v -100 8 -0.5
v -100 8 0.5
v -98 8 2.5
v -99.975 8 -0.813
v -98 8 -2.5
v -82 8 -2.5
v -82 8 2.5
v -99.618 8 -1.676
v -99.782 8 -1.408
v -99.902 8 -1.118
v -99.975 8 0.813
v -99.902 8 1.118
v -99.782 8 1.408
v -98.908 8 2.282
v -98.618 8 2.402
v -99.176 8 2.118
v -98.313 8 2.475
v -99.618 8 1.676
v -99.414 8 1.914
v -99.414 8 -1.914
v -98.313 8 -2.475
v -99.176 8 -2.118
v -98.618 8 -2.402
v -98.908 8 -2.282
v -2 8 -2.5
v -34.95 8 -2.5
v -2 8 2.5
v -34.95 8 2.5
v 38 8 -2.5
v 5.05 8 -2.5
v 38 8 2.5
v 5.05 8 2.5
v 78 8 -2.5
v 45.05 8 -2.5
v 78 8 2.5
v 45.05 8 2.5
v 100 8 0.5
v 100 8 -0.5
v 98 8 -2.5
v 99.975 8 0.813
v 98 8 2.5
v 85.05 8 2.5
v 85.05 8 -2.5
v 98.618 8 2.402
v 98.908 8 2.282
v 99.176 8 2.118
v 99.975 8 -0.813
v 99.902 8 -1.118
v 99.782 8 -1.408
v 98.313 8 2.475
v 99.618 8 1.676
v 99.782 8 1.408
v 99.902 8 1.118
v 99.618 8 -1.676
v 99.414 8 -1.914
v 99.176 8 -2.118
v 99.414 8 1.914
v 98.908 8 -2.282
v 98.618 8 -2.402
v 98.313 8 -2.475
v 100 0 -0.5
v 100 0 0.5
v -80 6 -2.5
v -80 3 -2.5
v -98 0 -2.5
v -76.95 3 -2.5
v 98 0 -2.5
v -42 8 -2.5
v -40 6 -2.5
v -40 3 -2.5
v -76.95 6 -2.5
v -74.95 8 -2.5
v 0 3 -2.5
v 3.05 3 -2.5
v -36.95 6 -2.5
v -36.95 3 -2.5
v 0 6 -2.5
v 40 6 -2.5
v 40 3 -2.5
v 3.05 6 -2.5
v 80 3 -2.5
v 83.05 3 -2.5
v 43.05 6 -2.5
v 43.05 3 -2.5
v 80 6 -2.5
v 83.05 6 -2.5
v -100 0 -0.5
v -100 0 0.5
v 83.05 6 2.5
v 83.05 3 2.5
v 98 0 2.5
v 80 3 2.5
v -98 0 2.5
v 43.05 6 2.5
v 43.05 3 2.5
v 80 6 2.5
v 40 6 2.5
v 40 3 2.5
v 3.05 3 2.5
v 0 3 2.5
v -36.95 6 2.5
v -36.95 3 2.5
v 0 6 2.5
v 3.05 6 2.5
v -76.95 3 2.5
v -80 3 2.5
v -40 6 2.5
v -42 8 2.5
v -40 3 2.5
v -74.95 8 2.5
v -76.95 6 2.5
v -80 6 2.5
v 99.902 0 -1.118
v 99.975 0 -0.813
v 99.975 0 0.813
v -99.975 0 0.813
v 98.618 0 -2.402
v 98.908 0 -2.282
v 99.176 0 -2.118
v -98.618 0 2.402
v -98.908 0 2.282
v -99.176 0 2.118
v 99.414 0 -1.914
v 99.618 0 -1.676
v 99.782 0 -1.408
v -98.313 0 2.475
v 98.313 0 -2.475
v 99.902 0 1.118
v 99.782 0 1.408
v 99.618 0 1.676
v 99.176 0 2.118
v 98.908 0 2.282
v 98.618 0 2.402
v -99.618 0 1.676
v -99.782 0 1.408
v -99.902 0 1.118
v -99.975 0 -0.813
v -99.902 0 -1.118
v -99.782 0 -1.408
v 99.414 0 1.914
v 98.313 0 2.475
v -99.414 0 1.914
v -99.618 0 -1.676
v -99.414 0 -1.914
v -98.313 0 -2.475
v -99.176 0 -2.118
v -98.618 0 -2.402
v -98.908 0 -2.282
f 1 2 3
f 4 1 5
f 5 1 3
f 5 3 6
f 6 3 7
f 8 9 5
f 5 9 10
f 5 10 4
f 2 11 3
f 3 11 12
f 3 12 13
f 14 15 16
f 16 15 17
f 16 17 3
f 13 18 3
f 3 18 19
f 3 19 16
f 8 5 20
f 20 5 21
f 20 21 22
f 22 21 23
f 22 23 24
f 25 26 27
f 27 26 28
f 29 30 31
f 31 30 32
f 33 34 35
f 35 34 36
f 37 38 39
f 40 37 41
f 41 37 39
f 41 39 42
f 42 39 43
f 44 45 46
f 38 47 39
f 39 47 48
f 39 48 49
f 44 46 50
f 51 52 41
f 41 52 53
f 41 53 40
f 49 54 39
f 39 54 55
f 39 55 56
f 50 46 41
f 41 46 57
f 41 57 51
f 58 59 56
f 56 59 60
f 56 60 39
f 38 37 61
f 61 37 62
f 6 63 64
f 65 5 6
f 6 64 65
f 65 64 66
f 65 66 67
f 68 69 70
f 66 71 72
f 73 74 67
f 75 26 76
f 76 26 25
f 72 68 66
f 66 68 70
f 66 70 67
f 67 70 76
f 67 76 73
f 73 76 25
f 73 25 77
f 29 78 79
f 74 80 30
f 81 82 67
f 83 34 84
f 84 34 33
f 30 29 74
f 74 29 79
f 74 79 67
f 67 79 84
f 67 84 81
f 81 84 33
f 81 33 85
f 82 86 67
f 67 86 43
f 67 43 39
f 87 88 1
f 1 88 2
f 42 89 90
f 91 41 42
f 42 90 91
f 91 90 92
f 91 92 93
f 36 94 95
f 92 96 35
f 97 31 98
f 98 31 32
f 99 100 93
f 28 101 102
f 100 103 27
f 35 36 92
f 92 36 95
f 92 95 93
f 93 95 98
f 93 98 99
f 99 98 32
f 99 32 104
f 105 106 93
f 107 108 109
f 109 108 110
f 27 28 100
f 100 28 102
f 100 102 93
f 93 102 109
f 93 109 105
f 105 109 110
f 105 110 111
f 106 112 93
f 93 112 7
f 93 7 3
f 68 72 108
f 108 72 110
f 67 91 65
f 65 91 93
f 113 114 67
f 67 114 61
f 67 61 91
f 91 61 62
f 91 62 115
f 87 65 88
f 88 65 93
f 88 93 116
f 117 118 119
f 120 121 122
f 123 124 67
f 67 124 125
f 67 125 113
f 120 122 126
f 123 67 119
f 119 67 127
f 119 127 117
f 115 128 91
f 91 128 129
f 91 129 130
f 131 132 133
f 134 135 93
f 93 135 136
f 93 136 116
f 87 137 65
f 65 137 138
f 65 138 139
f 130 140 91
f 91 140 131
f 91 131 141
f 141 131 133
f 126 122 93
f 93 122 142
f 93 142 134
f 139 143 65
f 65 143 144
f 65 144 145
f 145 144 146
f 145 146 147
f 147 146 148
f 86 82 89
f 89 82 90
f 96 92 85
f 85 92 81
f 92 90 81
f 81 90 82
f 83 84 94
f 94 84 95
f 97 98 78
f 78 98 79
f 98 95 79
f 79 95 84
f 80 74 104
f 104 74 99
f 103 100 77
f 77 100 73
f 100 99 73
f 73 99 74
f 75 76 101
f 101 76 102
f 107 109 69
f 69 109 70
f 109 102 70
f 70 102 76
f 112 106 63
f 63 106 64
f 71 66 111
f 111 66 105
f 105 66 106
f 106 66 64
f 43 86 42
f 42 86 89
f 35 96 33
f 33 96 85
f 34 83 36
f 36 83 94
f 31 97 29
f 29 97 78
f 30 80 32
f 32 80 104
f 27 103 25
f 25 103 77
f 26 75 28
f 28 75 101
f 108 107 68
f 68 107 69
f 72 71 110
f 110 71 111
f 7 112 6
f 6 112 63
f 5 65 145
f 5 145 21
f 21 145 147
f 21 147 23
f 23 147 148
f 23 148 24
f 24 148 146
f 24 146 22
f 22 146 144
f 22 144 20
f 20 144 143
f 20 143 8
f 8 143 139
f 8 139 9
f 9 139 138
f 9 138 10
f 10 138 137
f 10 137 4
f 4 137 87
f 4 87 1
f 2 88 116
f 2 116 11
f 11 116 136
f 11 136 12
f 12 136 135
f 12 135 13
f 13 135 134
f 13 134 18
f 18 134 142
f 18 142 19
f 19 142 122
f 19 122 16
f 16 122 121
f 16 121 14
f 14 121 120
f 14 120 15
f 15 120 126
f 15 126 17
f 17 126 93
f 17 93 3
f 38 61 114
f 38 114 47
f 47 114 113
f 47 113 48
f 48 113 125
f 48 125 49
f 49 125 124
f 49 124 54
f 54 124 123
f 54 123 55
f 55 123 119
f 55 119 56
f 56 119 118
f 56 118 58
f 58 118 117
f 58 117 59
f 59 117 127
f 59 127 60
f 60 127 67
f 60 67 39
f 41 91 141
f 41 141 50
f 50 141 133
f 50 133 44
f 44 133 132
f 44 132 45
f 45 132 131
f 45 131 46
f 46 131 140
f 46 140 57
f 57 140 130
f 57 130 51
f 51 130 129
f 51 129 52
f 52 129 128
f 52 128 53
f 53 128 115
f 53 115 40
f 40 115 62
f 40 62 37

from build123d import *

# Parameters (mm, degrees)
SKETCH1_W           = 200
SKETCH1_H           = 5
BOSS_EXTRUDE1_DEPTH = 8
SKETCH2_W           = 3.05
SKETCH2_H           = 5
CUT_EXTRUDE1_DEPTH  = 5
CHAMFER1_SIZE       = 2
FILLET1_R           = 2


with BuildPart() as part:
    # Sketch1 → Boss-Extrude1 (new body)
    with BuildSketch(Plane(origin=(0, 0, 0), x_dir=(1, 0, 0), z_dir=(0, 1, 0))):
        Rectangle(SKETCH1_W, SKETCH1_H)
    extrude(amount=BOSS_EXTRUDE1_DEPTH)

    # Sketch2 → Cut-Extrude1 (cut)
    with BuildSketch(Plane(origin=(0, 8, 0), x_dir=(1, 0, 0), z_dir=(0, 1, 0))):
        with Locations((-78.475, 0)):
            Rectangle(SKETCH2_W, SKETCH2_H)
        with Locations((-38.475, 0)):
            Rectangle(SKETCH2_W, SKETCH2_H)
        with Locations((1.525, 0)):
            Rectangle(SKETCH2_W, SKETCH2_H)
        with Locations((41.525, 0)):
            Rectangle(SKETCH2_W, SKETCH2_H)
        with Locations((81.525, 0)):
            Rectangle(SKETCH2_W, SKETCH2_H)
    extrude(amount=-CUT_EXTRUDE1_DEPTH, mode=Mode.SUBTRACT)

    # Chamfer1
    chamfer1_edges = [part.edges().sort_by_distance(p)[0] for p in [
        (-80, 8, 0),
        (-76.95, 8, 0),
        (-40, 8, 0),
        (-36.95, 8, 0),
        (0, 8, 0),
        (3.05, 8, 0),
        (40, 8, 0),
        (43.05, 8, 0),
        (80, 8, 0),
        (83.05, 8, 0),
    ]]
    chamfer(chamfer1_edges, length=CHAMFER1_SIZE)

    # Fillet1
    fillet1_edges = [part.edges().sort_by_distance(p)[0] for p in [
        (100, 4, 2.5),
        (-100, 4, 2.5),
        (-100, 4, -2.5),
        (100, 4, -2.5),
    ]]
    fillet(fillet1_edges, radius=FILLET1_R)


solid = part.part
